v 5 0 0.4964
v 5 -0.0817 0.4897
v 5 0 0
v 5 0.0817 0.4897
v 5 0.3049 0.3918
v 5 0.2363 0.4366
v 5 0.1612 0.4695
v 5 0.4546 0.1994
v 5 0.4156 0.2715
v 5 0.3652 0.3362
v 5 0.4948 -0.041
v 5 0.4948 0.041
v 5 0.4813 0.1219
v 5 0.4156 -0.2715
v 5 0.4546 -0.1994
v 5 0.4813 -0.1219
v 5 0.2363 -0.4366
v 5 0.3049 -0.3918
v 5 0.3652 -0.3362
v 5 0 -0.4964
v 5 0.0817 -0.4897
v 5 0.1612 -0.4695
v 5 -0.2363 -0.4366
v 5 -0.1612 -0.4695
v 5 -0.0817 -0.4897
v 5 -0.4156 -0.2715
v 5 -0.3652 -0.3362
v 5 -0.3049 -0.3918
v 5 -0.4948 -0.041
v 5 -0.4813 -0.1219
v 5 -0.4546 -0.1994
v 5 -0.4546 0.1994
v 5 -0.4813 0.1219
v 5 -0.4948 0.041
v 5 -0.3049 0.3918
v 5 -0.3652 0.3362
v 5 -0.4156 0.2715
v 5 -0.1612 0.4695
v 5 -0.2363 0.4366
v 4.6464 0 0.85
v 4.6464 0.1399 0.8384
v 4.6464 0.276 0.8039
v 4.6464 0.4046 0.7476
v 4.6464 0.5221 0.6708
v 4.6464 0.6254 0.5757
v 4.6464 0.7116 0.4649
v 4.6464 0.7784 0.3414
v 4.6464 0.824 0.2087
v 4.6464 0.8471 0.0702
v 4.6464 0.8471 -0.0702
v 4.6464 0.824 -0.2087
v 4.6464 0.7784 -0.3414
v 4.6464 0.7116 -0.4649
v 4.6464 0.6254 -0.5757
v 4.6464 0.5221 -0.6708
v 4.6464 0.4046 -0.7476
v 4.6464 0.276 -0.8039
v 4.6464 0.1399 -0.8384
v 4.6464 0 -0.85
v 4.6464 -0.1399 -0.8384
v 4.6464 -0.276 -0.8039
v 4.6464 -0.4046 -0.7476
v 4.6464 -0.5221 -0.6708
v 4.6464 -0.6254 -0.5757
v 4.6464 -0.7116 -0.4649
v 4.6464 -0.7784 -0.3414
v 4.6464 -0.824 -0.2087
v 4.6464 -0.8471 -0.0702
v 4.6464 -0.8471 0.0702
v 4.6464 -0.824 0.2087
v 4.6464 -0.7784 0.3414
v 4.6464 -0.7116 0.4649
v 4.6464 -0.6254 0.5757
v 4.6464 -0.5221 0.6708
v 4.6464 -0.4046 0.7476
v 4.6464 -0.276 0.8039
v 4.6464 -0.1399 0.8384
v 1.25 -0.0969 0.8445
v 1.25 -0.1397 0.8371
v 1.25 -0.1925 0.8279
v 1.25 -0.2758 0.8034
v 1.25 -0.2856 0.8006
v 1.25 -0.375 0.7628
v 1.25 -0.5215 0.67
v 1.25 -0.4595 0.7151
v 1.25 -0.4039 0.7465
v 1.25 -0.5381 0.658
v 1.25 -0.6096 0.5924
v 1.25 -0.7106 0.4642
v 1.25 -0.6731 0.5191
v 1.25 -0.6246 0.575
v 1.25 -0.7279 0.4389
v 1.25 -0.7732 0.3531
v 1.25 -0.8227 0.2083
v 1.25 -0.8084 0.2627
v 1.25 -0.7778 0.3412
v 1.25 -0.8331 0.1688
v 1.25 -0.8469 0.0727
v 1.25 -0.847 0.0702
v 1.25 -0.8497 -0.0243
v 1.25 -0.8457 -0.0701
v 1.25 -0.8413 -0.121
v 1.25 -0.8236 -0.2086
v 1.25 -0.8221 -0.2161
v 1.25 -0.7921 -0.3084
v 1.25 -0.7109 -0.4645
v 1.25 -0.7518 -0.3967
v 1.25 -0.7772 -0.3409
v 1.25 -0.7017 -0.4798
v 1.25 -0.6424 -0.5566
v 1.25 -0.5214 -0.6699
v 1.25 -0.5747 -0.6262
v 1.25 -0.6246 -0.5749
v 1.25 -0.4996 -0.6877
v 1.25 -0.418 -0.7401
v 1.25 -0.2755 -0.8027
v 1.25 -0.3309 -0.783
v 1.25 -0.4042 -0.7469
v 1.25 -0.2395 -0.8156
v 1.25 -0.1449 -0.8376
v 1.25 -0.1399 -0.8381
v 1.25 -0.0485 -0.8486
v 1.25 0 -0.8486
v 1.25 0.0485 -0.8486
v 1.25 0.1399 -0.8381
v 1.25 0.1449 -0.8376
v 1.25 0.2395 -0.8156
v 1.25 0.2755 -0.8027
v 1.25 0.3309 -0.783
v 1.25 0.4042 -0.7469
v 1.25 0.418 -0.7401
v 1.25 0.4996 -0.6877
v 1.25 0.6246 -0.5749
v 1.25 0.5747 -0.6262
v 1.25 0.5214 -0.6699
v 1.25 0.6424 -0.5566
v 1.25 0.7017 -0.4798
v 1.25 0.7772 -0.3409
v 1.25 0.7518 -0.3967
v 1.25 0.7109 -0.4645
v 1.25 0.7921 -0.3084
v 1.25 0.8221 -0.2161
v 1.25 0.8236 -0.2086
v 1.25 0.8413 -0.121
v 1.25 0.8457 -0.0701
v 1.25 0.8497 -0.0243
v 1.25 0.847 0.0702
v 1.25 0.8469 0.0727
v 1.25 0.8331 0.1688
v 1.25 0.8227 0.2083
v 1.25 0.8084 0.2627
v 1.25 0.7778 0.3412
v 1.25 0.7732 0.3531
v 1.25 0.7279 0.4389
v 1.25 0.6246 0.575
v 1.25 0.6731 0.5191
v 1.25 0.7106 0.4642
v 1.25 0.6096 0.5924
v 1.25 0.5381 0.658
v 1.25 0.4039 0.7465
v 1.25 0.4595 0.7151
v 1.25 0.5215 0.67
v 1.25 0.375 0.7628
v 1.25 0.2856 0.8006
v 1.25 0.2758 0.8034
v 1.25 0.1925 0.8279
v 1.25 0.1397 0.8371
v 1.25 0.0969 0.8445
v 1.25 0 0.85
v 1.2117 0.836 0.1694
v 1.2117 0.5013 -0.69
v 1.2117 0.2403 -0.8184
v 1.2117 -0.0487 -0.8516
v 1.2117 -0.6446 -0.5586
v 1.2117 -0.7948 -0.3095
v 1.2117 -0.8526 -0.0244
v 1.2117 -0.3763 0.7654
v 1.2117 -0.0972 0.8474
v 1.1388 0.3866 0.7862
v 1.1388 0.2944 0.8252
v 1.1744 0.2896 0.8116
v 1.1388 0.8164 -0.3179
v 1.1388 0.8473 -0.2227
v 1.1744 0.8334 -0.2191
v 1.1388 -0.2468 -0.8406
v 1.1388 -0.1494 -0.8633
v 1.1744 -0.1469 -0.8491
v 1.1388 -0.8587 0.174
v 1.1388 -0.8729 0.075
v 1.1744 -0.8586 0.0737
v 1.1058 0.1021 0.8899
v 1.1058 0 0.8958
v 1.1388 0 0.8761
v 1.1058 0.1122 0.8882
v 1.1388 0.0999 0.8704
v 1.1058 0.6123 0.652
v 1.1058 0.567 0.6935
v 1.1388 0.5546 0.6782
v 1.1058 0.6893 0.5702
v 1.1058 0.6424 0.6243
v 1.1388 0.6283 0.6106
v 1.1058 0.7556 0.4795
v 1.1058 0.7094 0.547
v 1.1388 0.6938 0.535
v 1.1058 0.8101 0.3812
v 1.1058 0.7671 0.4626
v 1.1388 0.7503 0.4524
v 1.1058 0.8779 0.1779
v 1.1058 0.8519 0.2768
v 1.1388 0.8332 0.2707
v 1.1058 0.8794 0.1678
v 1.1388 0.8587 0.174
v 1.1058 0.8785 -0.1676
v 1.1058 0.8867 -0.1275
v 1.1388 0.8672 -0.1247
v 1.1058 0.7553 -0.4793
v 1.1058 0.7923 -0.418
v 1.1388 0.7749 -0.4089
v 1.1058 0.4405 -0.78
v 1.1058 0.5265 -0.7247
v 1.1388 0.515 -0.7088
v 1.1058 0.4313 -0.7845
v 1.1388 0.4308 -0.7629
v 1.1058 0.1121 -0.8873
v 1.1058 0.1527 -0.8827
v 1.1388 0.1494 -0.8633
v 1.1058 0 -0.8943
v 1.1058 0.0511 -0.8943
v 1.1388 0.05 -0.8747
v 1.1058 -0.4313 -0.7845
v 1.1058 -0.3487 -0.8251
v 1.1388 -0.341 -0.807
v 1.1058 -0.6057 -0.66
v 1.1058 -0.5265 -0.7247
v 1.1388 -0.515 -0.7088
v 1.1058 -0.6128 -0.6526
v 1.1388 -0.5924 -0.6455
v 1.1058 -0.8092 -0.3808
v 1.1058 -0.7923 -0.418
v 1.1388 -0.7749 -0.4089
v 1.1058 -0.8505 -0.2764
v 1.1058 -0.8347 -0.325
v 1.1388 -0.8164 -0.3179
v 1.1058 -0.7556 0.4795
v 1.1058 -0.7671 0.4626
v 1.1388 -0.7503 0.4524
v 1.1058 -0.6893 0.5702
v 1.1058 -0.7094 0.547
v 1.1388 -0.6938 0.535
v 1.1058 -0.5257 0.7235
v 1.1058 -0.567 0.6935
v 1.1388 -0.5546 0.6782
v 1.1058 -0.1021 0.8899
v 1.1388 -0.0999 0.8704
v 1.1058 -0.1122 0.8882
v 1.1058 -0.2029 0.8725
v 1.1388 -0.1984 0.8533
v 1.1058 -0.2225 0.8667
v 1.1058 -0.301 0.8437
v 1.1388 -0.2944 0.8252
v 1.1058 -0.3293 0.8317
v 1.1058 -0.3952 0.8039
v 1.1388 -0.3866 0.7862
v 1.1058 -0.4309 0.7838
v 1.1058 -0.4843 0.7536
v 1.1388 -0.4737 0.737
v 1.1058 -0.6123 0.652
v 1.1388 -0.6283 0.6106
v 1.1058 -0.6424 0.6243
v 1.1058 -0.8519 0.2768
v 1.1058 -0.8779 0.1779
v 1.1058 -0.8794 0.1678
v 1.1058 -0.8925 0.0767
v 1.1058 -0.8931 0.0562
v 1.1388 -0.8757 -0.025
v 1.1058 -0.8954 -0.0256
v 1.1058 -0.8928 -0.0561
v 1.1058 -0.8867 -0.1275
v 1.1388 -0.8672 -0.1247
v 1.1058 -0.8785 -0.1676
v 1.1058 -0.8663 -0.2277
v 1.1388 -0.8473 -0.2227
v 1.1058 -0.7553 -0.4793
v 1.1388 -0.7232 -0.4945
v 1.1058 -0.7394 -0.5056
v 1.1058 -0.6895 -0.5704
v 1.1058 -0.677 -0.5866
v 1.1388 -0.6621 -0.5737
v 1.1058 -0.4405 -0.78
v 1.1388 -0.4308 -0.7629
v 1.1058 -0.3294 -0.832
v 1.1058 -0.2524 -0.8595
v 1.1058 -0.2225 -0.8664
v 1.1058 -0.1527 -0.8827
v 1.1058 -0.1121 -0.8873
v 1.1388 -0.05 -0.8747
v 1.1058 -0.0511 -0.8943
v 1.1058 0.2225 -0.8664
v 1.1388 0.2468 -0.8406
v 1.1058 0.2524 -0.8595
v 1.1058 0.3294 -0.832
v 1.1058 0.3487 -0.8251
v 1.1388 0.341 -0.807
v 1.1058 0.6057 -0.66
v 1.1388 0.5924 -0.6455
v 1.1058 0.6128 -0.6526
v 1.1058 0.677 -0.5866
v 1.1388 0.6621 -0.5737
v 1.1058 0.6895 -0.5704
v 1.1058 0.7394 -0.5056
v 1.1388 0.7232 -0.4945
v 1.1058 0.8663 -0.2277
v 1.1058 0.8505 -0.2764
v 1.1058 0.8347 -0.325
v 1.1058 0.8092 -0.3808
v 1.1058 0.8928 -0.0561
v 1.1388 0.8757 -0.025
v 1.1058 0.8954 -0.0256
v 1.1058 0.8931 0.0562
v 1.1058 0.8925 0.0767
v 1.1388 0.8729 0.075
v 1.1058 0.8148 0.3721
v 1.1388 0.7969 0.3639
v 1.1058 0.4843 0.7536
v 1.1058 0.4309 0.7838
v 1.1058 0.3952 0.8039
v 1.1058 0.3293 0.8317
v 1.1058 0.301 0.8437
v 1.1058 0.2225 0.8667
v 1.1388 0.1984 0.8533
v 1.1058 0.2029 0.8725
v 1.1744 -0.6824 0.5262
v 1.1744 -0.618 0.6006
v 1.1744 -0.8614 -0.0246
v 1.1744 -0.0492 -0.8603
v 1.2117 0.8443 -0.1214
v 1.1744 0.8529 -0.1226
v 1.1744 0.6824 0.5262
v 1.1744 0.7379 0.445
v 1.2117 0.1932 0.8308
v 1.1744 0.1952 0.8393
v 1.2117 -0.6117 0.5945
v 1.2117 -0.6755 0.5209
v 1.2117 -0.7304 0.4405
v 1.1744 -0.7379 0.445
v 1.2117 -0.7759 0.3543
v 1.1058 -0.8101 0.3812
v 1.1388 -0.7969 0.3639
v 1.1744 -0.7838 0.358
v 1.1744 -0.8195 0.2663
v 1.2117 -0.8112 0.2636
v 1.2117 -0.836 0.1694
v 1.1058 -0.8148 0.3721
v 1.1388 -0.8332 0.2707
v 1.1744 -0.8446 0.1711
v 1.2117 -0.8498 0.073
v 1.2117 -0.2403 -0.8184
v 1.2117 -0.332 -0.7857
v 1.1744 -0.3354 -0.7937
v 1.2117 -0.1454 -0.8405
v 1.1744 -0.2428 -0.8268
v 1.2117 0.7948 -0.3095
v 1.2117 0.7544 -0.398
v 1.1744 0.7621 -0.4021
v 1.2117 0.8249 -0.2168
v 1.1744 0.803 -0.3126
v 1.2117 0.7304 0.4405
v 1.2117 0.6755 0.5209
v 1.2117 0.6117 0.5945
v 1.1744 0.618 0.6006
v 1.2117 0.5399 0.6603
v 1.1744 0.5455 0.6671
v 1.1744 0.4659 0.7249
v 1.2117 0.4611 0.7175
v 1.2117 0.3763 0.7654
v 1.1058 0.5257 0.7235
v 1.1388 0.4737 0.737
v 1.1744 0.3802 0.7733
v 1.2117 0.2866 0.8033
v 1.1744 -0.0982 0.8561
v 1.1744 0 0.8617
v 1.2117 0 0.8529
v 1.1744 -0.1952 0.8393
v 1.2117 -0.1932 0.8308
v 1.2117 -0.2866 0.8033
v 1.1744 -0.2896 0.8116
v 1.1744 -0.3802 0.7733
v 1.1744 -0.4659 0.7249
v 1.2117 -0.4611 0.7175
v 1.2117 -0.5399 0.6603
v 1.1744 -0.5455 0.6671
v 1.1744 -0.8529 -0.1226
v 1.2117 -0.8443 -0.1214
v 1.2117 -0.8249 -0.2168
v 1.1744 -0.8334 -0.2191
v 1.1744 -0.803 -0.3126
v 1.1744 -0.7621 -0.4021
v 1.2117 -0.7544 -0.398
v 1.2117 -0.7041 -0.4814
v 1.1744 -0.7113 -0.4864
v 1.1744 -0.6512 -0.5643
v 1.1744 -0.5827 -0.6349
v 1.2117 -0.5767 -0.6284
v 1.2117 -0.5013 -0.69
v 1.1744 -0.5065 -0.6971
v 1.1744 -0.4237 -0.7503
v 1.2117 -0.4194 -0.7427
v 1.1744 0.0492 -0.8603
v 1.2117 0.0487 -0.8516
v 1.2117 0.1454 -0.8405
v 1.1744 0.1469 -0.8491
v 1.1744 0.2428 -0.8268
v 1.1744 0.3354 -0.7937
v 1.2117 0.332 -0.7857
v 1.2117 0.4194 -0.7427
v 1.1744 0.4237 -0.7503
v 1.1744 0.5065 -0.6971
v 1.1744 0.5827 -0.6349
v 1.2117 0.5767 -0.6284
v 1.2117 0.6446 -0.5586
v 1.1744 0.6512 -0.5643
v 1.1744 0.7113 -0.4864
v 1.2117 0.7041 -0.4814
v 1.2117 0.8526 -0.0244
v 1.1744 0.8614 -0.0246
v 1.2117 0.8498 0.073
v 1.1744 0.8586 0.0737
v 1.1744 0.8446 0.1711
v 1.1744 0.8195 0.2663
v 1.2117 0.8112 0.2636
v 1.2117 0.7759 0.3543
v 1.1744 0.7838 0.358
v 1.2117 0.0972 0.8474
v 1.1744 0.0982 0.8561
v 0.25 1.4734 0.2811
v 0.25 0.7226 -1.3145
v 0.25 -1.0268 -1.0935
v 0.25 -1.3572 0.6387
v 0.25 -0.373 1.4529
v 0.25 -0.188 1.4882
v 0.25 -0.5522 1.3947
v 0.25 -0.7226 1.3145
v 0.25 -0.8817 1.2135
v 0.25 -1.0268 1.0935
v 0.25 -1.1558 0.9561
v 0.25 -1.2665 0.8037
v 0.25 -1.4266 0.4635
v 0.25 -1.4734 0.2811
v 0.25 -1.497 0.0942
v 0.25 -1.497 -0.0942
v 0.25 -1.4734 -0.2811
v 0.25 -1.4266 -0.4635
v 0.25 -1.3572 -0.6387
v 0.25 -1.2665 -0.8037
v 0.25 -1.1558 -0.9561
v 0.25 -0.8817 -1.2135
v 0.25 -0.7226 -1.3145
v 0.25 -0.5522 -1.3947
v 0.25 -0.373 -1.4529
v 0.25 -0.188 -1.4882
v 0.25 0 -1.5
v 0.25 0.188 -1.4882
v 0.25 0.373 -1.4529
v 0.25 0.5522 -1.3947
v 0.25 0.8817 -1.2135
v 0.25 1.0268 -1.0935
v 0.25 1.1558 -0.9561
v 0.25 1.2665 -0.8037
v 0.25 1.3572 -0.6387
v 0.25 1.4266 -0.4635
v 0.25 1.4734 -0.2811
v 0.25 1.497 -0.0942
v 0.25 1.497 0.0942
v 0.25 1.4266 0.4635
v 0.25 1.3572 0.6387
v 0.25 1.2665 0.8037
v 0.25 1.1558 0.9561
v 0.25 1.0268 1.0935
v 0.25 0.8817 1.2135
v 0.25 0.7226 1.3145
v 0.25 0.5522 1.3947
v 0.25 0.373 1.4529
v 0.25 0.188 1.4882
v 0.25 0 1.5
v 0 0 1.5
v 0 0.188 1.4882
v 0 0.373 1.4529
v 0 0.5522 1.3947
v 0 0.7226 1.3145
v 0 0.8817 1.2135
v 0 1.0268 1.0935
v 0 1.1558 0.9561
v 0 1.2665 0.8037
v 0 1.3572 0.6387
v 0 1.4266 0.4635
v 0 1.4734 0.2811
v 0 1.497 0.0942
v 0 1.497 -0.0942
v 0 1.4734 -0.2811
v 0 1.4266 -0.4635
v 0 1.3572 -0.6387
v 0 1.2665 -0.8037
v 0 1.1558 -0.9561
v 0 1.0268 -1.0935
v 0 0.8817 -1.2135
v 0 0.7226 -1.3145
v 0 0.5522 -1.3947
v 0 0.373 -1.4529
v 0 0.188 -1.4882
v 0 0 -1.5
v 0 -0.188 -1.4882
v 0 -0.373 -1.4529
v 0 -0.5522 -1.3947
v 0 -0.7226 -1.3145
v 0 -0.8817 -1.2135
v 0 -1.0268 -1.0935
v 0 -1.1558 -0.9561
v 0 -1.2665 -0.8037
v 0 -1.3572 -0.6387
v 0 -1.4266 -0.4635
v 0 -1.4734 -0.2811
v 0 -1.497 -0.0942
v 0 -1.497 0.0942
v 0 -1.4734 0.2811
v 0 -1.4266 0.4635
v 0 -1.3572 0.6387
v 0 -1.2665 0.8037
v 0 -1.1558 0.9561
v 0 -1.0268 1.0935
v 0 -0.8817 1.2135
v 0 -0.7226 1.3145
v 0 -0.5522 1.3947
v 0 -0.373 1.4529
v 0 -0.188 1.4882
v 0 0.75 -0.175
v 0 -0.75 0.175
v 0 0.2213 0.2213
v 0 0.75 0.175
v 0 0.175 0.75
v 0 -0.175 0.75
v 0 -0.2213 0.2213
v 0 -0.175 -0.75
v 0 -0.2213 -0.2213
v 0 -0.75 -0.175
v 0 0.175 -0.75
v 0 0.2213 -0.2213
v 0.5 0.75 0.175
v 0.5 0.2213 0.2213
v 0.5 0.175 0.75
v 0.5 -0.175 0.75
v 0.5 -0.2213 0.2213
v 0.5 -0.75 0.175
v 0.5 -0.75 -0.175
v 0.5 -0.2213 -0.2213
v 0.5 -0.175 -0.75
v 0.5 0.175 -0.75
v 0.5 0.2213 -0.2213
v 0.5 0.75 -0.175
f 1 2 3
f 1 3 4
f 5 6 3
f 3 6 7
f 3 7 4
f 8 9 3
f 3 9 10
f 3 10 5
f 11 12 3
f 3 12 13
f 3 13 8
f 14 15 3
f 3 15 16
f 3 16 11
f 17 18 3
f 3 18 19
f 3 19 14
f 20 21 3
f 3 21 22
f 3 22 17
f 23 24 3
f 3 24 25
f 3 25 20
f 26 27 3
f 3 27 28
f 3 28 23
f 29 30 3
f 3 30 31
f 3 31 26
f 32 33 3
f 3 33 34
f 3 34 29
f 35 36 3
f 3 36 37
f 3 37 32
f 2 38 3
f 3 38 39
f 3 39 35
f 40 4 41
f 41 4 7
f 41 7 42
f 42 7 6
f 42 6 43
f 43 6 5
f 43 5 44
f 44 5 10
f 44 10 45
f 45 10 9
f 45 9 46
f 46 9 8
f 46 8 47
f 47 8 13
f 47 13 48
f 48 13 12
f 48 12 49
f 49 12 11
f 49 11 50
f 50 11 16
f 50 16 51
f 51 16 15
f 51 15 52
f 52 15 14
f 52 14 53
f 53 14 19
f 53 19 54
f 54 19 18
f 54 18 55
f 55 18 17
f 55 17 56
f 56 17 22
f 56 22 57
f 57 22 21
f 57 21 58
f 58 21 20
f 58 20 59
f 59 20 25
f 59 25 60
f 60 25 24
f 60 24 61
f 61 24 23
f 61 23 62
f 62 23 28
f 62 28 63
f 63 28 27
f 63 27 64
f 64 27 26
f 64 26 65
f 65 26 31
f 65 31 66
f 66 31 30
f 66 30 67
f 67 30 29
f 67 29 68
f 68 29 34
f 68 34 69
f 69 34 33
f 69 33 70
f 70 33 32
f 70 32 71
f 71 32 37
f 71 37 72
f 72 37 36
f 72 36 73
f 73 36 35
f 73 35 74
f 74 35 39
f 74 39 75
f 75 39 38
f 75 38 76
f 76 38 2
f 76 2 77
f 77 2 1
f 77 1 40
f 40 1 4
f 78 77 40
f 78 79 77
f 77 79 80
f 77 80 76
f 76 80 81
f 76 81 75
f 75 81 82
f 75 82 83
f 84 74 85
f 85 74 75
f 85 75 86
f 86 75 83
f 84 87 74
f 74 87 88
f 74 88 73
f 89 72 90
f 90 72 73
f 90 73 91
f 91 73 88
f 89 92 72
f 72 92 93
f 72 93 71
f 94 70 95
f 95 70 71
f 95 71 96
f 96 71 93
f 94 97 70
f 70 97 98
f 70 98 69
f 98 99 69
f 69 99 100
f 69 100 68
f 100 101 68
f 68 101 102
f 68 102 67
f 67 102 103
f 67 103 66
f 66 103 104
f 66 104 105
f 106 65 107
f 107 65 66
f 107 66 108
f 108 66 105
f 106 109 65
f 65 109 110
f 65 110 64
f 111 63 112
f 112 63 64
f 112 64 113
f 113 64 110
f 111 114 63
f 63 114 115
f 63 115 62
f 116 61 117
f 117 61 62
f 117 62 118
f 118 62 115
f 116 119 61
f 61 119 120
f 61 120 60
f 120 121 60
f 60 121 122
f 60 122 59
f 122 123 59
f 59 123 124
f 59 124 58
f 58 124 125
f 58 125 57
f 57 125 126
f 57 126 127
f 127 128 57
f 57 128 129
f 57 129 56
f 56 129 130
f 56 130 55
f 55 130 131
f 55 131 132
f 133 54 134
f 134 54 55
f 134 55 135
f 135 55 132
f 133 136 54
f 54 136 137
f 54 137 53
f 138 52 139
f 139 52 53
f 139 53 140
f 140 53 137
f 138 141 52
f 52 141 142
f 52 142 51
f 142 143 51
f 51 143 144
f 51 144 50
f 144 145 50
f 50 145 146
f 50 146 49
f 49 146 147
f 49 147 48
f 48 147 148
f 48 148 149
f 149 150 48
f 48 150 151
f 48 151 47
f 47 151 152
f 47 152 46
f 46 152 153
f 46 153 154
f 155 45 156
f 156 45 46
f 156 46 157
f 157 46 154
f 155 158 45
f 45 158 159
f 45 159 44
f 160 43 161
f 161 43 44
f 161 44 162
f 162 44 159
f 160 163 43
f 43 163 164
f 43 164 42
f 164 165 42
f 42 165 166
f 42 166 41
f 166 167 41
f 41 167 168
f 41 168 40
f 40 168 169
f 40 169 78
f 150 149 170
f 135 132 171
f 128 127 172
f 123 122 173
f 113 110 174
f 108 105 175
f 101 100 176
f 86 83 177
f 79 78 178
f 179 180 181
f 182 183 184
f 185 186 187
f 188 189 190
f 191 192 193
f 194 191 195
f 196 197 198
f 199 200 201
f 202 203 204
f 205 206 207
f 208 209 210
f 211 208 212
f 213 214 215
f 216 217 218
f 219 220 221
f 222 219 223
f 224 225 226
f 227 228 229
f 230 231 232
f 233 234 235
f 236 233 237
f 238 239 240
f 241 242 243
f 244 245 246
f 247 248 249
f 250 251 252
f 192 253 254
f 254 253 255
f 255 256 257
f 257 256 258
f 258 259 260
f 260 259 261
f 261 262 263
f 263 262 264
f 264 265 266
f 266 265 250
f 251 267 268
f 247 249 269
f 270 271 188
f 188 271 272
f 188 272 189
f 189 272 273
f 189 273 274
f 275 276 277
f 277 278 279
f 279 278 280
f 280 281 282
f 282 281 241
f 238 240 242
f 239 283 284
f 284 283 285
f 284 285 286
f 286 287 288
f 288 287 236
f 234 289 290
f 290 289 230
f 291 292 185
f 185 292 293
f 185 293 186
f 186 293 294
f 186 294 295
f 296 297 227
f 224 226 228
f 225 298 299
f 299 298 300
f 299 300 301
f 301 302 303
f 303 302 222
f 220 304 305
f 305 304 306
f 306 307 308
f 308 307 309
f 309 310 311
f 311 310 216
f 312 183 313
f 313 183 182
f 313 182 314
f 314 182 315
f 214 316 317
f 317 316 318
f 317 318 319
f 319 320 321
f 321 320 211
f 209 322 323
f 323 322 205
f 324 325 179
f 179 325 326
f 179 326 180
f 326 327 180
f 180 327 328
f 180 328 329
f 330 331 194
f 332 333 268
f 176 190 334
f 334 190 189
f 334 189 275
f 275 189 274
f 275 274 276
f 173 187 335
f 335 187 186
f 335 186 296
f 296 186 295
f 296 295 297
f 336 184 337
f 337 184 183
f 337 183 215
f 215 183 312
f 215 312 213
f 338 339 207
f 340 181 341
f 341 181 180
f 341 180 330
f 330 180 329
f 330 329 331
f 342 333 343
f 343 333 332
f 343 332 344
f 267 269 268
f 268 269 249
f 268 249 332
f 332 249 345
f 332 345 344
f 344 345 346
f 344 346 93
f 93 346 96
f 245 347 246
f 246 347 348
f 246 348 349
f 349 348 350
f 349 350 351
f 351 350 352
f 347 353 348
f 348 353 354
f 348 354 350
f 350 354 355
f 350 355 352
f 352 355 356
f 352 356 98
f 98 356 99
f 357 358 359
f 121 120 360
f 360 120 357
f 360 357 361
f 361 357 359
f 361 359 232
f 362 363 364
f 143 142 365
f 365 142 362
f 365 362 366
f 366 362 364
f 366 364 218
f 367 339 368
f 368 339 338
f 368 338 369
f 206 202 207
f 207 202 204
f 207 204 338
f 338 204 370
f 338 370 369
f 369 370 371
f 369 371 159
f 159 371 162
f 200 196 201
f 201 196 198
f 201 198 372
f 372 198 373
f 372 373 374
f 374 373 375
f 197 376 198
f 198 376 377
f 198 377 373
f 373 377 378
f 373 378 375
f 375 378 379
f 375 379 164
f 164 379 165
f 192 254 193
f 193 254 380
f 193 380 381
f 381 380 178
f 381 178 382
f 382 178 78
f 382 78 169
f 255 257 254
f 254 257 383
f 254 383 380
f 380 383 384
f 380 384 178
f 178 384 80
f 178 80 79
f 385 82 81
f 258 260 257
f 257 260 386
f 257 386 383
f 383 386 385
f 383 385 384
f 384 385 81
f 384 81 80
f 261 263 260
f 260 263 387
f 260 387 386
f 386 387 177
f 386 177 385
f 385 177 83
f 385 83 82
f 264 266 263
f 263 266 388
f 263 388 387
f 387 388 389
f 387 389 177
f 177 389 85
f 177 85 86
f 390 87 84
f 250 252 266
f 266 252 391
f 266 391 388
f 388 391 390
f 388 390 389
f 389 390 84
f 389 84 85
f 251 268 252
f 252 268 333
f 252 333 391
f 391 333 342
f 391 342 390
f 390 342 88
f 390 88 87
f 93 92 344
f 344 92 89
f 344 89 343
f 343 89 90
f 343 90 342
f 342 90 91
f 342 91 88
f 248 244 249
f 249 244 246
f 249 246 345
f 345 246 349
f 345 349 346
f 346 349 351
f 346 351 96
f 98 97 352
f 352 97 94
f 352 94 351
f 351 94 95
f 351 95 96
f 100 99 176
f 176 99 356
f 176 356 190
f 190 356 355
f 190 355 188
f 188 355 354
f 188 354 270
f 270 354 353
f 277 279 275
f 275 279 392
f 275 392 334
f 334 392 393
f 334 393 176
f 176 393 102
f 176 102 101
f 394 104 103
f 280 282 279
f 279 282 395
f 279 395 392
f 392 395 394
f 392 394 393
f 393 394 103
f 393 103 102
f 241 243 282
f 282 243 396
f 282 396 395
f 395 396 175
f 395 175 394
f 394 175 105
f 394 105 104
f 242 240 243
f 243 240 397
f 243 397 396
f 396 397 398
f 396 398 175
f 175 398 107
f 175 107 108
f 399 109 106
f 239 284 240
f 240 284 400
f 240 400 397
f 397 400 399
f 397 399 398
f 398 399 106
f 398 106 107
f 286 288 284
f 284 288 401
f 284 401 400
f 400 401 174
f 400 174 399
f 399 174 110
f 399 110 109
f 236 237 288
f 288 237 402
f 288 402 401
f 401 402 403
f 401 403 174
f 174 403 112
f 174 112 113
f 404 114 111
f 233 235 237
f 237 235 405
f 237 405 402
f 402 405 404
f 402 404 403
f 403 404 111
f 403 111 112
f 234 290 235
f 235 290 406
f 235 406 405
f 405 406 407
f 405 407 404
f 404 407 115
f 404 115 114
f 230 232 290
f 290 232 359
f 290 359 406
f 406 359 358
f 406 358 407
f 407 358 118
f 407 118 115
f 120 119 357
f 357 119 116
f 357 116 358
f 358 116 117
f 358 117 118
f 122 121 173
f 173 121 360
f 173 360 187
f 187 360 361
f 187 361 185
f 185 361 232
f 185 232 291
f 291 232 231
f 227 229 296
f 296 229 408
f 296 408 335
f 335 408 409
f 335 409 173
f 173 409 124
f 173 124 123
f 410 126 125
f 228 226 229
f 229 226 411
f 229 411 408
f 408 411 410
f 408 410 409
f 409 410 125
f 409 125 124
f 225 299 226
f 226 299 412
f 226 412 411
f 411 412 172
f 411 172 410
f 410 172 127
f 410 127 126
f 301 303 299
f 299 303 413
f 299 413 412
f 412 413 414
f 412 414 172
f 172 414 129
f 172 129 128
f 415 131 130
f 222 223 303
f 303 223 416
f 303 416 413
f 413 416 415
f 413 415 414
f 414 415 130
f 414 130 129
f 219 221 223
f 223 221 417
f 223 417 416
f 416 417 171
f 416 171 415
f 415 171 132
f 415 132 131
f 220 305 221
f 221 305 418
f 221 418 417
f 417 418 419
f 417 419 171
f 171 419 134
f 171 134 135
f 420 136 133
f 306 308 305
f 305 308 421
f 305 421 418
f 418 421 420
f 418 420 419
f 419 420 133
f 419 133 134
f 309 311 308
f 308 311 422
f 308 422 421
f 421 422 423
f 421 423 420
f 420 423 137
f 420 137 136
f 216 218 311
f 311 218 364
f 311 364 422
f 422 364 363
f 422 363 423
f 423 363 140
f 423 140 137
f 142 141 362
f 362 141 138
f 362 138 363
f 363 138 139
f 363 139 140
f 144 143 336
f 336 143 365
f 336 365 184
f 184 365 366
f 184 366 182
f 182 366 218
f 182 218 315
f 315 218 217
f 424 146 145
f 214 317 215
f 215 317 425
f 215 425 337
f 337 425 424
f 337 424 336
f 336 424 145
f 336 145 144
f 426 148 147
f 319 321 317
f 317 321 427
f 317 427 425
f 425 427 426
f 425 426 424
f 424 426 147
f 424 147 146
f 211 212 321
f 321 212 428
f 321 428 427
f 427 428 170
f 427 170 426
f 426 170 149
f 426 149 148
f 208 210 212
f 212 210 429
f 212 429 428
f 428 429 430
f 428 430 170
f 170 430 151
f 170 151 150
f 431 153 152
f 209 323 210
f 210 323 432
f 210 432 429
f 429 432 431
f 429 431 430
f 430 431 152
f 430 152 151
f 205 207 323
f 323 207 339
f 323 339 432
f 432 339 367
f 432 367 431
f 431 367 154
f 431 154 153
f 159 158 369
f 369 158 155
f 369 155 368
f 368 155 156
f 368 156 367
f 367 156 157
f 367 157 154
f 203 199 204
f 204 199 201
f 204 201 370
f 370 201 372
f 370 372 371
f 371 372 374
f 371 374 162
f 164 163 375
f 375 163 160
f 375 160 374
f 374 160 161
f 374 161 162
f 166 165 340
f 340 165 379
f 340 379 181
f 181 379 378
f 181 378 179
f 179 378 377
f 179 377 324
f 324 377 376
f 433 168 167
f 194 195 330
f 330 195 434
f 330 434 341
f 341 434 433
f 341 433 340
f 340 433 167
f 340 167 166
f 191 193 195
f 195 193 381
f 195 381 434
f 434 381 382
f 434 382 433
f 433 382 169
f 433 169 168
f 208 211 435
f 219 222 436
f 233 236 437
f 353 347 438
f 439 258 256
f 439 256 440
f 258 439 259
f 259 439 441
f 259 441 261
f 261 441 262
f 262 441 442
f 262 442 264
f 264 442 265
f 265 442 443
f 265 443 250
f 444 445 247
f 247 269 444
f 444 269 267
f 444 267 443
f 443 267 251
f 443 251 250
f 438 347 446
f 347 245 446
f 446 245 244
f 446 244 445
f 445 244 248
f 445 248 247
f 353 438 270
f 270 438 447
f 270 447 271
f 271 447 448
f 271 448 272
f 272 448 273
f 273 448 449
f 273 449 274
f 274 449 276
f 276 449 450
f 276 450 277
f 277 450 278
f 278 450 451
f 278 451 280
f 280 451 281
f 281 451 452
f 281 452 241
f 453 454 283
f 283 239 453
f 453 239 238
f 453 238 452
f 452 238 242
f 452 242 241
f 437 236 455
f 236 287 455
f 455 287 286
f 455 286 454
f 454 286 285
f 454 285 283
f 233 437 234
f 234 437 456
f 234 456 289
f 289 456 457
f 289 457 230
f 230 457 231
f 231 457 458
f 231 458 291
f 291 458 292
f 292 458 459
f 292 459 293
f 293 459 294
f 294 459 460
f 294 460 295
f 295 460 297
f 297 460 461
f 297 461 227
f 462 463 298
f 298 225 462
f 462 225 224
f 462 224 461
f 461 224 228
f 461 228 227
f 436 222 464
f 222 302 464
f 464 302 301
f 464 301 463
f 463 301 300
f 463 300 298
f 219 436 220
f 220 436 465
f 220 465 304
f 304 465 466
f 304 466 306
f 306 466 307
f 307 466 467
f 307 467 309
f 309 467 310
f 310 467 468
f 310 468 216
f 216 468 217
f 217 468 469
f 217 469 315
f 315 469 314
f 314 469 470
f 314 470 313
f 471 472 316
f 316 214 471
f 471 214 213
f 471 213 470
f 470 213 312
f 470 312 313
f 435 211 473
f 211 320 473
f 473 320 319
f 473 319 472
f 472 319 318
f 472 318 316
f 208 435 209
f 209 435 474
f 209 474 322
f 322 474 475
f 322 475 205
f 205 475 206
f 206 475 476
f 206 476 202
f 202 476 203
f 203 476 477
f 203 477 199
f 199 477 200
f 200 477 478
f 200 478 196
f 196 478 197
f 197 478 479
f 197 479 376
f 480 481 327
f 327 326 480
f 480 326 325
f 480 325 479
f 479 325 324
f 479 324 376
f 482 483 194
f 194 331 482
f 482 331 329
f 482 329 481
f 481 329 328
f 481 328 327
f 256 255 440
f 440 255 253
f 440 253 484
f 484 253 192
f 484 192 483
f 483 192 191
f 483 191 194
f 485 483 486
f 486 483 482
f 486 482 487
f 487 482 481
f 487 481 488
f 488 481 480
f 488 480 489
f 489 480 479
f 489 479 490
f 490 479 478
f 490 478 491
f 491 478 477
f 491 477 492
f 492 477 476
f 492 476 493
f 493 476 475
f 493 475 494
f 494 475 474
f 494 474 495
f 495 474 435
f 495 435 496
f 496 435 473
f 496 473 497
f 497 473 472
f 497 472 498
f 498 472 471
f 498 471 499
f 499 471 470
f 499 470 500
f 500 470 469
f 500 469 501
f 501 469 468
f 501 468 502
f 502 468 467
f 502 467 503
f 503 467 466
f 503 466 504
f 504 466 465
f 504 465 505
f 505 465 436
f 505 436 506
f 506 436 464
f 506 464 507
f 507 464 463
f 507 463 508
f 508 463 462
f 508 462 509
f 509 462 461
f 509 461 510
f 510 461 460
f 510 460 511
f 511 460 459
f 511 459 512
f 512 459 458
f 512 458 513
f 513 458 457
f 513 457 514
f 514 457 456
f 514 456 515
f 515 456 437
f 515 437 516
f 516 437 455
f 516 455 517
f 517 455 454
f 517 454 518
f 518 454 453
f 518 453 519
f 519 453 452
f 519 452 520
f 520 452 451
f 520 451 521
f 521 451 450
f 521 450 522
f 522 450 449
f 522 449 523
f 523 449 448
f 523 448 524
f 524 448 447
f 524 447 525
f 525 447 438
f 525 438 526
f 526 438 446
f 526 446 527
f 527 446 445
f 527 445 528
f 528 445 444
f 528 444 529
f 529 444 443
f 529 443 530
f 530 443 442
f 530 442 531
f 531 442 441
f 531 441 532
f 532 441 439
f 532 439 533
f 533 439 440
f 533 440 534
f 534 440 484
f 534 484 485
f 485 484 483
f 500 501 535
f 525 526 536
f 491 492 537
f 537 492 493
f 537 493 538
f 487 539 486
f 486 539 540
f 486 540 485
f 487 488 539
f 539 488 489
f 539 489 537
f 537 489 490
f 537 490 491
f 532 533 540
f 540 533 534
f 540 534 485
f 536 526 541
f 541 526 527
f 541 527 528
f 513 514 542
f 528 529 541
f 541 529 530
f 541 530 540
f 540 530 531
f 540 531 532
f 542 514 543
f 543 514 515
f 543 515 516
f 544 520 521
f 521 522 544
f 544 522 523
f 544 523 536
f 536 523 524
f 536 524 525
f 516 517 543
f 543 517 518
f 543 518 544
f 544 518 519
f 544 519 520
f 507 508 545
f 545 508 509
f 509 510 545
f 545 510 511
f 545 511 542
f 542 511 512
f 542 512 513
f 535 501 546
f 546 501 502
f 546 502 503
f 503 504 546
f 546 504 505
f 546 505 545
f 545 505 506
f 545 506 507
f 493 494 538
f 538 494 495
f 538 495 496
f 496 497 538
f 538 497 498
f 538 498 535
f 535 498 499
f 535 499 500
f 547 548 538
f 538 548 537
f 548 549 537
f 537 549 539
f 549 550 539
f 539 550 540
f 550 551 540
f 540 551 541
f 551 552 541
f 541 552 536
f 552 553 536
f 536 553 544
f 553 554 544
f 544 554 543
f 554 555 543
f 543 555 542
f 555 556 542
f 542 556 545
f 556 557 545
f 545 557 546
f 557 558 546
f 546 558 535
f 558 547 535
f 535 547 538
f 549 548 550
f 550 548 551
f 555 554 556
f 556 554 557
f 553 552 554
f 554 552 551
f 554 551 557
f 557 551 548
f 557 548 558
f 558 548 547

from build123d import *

# Parameters (mm, degrees)
CUT_EXTRUDE1_DEPTH = 0.5


with BuildPart() as part:
    # Sketch1 → Revolve1 (revolve)
    with BuildSketch(Plane.XY):
        with BuildLine():
            Line((0, 0), (0, 1.5))
            Line((0, 1.5), (0.25, 1.5))
            Line((0.25, 1.5), (1.105808936, 0.89577234))
            ThreePointArc((1.105808936, 0.89577234), (1.174359121, 0.861717694), (1.25, 0.85))
            Line((1.25, 0.85), (4.646446609, 0.85))
            Line((4.646446609, 0.85), (5, 0.496446609))
            Line((5, 0.496446609), (5, 0))
            Line((5, 0), (0, 0))
        make_face()
    revolve(axis=Axis((-3.974685283, 0, 0), (1, 0, 0)))

    # Sketch2 → Cut-Extrude1 (cut)
    with BuildSketch(Plane.ZY):
        Polygon((-0.175, 0.75), (0.175, 0.75), (0.221258856, 0.221258856), (0.75, 0.175), (0.75, -0.175), (0.221258856, -0.221258856), (0.175, -0.75), (-0.175, -0.75), (-0.221258856, -0.221258856), (-0.75, -0.175), (-0.75, 0.175), (-0.221258856, 0.221258856), align=None)
    extrude(amount=-CUT_EXTRUDE1_DEPTH, mode=Mode.SUBTRACT)


solid = part.part
